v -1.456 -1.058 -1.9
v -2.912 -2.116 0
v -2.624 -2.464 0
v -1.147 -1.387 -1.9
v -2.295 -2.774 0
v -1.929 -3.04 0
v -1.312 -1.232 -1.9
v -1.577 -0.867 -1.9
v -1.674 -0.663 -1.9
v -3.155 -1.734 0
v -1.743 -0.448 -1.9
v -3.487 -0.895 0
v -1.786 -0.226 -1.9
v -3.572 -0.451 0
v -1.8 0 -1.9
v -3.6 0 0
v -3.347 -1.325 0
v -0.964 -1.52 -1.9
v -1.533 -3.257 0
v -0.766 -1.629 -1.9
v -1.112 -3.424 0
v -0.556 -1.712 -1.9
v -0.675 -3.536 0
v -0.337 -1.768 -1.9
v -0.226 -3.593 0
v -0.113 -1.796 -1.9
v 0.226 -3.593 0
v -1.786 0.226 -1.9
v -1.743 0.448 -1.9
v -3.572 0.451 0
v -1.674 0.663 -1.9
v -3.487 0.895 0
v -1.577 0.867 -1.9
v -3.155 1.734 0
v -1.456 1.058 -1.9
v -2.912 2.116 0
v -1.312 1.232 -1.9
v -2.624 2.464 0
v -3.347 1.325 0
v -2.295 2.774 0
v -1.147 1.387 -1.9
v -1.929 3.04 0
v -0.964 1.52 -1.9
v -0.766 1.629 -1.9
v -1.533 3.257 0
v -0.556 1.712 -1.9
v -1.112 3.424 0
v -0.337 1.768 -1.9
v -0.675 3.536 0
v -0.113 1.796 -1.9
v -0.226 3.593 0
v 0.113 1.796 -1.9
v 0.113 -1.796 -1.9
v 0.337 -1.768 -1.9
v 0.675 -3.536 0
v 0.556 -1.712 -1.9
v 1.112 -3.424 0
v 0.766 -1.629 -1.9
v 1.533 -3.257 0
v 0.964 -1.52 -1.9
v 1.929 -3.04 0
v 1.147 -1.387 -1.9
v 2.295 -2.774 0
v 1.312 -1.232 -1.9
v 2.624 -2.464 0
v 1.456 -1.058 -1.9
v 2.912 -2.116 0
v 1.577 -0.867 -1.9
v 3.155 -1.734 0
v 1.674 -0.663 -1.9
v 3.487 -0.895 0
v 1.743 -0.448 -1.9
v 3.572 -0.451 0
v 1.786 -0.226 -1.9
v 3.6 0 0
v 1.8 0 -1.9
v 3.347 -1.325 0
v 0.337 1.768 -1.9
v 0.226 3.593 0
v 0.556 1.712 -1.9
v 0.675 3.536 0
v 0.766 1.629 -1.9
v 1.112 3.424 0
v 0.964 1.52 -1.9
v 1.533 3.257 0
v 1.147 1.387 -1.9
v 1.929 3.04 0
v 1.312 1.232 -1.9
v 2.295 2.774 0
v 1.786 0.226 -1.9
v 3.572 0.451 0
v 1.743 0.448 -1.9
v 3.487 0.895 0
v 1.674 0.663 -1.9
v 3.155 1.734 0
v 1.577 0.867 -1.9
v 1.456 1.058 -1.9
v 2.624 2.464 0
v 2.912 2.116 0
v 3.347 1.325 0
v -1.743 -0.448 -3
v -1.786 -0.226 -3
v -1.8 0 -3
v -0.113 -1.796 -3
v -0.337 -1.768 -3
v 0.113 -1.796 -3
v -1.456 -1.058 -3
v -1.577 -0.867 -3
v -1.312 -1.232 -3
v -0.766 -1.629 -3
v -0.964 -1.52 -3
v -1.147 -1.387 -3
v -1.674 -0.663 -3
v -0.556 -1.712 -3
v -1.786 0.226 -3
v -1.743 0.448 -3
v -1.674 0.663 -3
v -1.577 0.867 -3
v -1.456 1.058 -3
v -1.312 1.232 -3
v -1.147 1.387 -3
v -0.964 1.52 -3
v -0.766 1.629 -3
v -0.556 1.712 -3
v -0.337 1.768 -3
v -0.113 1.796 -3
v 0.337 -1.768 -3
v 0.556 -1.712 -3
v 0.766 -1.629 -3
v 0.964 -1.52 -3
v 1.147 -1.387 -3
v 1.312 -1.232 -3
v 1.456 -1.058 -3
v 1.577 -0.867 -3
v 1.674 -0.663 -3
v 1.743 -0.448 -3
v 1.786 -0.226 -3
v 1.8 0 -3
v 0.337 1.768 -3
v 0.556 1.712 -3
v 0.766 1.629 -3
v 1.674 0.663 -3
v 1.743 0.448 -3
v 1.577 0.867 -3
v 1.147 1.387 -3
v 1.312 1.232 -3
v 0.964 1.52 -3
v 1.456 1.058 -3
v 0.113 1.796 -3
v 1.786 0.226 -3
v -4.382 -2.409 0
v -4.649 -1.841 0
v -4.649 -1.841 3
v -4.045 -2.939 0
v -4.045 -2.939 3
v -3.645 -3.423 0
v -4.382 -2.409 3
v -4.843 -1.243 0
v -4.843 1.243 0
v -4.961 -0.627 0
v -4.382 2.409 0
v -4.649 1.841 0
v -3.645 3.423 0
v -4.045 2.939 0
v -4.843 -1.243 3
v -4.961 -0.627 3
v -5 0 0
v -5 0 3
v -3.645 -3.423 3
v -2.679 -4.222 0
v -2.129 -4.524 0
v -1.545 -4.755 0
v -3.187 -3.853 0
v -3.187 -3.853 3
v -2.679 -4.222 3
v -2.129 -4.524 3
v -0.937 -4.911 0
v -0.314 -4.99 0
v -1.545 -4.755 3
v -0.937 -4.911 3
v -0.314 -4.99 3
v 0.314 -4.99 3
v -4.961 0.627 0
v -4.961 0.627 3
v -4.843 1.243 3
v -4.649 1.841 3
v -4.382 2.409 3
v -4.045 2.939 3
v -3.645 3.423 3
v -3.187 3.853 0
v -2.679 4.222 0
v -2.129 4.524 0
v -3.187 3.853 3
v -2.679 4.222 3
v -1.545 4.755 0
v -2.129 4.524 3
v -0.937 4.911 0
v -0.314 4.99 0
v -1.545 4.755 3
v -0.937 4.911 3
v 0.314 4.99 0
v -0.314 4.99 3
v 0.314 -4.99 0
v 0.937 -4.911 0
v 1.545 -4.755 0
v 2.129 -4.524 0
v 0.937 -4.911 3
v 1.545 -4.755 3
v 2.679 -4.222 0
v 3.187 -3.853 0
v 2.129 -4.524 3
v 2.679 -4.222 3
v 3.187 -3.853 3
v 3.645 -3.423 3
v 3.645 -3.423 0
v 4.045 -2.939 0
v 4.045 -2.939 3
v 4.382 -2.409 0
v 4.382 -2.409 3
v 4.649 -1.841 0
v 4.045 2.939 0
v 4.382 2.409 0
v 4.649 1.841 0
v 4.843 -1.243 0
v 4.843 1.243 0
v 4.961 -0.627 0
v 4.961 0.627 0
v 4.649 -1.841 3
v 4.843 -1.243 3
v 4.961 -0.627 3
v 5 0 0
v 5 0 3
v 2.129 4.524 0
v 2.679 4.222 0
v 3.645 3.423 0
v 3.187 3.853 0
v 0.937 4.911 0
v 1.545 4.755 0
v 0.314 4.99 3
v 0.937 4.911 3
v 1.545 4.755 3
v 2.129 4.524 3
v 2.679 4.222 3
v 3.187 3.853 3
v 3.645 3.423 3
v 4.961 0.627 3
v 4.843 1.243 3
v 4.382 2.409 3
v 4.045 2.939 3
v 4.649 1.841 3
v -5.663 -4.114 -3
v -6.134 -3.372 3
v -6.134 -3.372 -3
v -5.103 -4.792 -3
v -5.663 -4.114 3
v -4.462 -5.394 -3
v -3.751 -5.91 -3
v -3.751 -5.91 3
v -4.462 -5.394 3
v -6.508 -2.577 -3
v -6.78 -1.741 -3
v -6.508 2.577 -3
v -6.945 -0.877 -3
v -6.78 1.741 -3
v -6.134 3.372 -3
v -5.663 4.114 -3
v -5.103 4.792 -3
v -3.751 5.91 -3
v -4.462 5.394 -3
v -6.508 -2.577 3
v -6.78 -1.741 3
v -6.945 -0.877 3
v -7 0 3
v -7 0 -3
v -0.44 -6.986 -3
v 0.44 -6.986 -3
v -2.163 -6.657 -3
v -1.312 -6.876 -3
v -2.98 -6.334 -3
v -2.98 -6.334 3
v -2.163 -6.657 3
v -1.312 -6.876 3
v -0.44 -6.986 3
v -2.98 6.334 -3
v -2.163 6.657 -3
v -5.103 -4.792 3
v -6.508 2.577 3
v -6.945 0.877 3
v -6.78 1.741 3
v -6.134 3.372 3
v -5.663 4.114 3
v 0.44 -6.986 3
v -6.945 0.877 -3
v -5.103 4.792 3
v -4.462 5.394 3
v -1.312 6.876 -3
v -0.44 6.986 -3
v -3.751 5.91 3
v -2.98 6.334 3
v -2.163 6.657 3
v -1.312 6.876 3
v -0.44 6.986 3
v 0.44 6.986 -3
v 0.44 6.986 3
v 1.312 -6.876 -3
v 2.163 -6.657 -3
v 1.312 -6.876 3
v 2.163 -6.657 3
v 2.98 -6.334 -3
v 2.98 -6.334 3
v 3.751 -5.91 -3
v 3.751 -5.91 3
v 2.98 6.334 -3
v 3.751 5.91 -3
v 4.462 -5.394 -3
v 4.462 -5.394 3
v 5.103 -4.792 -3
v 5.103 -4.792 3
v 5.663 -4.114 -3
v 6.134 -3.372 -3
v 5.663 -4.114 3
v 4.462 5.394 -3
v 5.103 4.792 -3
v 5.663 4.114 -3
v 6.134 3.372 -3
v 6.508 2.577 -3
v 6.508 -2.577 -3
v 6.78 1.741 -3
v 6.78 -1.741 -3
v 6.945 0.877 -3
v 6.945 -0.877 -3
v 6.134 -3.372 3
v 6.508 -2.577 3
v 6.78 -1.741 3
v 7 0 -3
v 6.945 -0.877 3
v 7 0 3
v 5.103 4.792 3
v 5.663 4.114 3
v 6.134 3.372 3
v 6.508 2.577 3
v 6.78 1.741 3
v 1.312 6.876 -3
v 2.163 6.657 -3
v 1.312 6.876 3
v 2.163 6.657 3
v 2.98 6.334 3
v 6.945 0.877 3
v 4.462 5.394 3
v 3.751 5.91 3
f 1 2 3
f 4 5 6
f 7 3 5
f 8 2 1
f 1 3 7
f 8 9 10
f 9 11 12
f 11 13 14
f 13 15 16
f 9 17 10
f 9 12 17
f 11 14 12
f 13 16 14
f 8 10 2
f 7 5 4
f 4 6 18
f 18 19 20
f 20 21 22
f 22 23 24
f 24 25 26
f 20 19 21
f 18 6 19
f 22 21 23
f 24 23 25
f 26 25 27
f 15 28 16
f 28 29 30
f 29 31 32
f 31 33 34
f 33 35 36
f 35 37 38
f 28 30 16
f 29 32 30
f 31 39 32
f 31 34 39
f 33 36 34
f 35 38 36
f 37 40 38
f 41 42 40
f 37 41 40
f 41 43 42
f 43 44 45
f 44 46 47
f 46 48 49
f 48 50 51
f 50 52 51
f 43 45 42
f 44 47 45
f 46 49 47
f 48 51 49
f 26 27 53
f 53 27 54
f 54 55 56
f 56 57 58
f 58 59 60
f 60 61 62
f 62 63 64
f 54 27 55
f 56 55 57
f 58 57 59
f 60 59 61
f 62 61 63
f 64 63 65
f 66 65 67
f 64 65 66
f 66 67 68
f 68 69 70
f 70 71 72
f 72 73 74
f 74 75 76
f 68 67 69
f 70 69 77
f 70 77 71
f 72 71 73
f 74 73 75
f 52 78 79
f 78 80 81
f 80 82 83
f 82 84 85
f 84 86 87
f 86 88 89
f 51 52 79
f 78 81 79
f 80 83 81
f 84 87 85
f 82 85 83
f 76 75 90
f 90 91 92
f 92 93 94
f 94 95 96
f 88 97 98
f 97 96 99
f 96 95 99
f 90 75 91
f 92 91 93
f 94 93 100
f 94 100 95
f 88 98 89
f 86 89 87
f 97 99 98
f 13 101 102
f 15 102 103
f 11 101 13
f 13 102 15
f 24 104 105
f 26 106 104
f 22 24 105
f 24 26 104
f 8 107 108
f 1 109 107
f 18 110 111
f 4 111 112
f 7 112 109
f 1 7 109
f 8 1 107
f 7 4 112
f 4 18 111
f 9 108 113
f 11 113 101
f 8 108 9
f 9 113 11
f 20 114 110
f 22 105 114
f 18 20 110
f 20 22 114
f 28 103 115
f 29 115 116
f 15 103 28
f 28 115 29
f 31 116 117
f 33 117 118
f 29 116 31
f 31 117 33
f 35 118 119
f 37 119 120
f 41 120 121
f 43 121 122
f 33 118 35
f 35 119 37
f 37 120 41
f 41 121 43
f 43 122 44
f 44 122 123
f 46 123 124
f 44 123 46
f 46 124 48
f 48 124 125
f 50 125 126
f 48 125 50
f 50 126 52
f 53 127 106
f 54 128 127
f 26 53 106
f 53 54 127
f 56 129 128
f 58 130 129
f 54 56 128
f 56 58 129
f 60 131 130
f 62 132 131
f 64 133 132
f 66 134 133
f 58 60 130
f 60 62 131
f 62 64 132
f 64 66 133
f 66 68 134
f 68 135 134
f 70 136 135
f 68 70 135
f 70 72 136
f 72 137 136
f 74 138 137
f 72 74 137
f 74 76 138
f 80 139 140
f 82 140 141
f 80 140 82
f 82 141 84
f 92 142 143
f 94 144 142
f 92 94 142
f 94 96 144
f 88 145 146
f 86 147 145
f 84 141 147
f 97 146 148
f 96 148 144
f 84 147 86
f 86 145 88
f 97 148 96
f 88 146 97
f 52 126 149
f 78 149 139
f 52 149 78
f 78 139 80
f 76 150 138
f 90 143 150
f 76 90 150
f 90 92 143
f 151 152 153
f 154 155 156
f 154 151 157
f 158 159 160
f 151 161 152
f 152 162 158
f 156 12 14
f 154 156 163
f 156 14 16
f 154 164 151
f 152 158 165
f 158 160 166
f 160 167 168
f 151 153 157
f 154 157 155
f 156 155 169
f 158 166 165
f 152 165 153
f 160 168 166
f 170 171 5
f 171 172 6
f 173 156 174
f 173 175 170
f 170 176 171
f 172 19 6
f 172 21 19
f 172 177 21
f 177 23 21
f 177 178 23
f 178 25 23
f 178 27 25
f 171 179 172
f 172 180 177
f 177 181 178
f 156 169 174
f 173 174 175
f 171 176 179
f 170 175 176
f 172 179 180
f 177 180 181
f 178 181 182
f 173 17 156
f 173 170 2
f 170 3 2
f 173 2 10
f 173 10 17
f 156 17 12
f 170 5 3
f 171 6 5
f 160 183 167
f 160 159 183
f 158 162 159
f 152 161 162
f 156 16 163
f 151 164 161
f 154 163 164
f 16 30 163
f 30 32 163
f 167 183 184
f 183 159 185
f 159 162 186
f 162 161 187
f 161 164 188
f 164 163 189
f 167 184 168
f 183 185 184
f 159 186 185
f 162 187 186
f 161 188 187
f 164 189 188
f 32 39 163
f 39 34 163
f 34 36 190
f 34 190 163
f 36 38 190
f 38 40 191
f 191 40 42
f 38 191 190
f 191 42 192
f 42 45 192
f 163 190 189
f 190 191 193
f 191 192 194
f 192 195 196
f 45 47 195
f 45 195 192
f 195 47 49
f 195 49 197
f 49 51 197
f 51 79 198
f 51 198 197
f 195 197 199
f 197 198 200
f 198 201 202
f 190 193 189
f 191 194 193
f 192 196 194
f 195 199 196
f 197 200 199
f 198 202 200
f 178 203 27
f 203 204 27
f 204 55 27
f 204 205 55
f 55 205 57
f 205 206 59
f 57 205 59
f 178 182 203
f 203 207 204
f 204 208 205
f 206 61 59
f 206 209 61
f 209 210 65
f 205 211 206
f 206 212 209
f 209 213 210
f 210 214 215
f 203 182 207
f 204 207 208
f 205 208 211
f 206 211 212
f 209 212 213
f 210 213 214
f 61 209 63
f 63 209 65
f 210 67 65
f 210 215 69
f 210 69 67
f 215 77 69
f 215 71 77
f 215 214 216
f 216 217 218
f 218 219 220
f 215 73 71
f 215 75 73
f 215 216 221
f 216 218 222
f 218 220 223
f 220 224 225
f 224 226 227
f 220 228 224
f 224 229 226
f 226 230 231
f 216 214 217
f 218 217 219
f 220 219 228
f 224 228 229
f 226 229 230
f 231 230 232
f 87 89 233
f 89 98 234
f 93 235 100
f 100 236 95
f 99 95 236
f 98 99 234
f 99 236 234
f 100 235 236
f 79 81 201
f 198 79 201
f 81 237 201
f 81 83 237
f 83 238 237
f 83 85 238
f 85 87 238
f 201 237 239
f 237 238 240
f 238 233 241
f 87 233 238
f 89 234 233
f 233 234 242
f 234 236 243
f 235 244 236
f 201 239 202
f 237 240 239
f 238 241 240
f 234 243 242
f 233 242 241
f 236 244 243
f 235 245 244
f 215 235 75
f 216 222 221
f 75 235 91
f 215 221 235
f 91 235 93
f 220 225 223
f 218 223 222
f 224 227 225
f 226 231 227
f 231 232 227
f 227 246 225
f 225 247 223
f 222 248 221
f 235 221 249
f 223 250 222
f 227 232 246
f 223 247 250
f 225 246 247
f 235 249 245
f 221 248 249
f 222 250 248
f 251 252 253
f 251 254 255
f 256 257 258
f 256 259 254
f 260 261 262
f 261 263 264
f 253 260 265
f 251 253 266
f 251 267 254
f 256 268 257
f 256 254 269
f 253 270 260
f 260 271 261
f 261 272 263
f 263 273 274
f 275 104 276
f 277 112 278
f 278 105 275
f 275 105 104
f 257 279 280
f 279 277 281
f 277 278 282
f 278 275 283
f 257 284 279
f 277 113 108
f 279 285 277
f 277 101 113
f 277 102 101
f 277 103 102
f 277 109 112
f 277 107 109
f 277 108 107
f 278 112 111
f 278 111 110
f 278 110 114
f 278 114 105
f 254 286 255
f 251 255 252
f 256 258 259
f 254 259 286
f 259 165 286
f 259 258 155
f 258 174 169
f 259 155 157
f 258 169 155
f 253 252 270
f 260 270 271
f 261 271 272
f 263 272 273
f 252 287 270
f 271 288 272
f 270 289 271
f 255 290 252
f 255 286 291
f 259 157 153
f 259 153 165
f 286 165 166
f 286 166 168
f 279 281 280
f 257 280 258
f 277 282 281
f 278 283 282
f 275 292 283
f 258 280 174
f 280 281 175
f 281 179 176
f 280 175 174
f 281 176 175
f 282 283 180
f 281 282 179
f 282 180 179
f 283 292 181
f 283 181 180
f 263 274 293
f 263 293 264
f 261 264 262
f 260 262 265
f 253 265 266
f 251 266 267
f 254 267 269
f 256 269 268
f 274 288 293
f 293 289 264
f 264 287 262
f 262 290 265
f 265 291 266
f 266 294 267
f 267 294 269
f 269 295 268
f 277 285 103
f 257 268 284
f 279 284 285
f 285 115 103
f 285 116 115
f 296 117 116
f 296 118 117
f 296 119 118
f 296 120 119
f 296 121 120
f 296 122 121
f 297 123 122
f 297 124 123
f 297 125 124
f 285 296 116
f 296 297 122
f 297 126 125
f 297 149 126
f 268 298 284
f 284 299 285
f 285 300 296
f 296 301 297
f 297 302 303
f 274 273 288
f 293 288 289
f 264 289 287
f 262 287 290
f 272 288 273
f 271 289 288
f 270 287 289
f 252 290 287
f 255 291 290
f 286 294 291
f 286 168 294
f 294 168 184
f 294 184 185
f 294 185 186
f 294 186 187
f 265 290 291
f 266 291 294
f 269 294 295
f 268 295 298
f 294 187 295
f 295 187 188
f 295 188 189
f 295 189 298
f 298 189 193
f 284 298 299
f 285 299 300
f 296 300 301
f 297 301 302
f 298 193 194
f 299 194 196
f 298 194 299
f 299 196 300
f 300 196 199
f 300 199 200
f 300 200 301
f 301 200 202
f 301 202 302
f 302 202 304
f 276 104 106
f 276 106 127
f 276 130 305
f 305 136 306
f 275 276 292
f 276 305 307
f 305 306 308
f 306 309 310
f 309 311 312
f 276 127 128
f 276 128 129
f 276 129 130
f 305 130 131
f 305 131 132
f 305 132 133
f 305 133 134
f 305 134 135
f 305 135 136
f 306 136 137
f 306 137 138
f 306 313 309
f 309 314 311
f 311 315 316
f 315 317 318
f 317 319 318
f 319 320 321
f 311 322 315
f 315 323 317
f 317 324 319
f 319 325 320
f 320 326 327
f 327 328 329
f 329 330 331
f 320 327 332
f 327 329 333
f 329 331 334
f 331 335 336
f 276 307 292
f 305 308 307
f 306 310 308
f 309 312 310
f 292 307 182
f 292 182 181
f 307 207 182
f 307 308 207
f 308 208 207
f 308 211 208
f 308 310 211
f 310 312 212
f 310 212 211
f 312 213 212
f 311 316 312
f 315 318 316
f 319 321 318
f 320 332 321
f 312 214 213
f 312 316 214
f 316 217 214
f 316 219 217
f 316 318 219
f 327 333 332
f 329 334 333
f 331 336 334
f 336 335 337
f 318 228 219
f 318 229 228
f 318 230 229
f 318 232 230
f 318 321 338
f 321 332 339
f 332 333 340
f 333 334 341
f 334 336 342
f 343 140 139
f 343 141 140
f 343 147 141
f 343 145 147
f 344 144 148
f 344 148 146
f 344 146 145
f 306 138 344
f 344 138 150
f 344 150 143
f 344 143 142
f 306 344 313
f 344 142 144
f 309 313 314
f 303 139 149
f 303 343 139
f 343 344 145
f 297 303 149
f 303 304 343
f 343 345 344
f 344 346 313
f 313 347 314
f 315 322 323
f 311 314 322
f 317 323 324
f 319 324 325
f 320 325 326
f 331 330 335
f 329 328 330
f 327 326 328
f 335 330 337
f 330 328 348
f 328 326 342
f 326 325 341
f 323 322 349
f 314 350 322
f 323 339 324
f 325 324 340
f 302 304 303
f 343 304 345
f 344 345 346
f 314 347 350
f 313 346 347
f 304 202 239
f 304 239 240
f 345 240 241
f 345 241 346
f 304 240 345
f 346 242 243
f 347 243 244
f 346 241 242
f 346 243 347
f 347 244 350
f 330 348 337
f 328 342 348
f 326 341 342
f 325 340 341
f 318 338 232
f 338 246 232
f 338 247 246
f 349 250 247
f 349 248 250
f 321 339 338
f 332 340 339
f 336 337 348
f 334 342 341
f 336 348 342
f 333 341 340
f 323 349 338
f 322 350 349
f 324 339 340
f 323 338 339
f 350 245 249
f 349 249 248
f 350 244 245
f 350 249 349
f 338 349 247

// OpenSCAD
$fn = 50;

difference() {
	union() {
		translate(v = [0, 0, -3.0]) {
			cylinder(h = 6, r = 7.0);
		}
	}
	union() {
		translate(v = [0, 0, 0]) {
			rotate(a = [0, 0, 0]) {
				difference() {
					union() {
						translate(v = [0, 0, -6.0]) {
							cylinder(h = 6, r = 1.5);
						}
						translate(v = [0, 0, -1.9]) {
							cylinder(h = 1.9, r1 = 1.8, r2 = 3.6);
						}
						translate(v = [0, 0, -6.0]) {
							cylinder(h = 6, r = 1.8);
						}
						translate(v = [0, 0, -6.0]) {
							cylinder(h = 6, r = 1.5);
						}
					}
					union();
				}
			}
		}
		#cylinder(h = 3, r = 5.0);
	}
}
